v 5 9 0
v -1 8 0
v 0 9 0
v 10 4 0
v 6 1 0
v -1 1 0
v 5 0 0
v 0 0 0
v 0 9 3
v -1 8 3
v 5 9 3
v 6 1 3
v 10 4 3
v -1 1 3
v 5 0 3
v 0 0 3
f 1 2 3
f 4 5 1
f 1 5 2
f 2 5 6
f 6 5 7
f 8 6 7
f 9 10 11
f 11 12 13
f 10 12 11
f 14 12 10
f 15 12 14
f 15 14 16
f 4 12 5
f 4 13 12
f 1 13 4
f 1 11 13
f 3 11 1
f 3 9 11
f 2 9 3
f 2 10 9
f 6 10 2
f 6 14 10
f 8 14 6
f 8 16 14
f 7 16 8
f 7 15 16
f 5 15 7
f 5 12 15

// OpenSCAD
// Locking Key - Irregular polygonal shape with consistent thickness

module locking_key() {
    linear_extrude(height = 3)  // Thickness of the key
    polygon(points=[
        [0, 0],         // Bottom-left rounded end
        [5, 0],
        [6, 1],
        [10, 4],
        [6, 8],
        [5, 9],
        [0, 9],
        [-1, 8],
        [-1, 1]
    ]);
}

// Render the locking key
locking_key();
